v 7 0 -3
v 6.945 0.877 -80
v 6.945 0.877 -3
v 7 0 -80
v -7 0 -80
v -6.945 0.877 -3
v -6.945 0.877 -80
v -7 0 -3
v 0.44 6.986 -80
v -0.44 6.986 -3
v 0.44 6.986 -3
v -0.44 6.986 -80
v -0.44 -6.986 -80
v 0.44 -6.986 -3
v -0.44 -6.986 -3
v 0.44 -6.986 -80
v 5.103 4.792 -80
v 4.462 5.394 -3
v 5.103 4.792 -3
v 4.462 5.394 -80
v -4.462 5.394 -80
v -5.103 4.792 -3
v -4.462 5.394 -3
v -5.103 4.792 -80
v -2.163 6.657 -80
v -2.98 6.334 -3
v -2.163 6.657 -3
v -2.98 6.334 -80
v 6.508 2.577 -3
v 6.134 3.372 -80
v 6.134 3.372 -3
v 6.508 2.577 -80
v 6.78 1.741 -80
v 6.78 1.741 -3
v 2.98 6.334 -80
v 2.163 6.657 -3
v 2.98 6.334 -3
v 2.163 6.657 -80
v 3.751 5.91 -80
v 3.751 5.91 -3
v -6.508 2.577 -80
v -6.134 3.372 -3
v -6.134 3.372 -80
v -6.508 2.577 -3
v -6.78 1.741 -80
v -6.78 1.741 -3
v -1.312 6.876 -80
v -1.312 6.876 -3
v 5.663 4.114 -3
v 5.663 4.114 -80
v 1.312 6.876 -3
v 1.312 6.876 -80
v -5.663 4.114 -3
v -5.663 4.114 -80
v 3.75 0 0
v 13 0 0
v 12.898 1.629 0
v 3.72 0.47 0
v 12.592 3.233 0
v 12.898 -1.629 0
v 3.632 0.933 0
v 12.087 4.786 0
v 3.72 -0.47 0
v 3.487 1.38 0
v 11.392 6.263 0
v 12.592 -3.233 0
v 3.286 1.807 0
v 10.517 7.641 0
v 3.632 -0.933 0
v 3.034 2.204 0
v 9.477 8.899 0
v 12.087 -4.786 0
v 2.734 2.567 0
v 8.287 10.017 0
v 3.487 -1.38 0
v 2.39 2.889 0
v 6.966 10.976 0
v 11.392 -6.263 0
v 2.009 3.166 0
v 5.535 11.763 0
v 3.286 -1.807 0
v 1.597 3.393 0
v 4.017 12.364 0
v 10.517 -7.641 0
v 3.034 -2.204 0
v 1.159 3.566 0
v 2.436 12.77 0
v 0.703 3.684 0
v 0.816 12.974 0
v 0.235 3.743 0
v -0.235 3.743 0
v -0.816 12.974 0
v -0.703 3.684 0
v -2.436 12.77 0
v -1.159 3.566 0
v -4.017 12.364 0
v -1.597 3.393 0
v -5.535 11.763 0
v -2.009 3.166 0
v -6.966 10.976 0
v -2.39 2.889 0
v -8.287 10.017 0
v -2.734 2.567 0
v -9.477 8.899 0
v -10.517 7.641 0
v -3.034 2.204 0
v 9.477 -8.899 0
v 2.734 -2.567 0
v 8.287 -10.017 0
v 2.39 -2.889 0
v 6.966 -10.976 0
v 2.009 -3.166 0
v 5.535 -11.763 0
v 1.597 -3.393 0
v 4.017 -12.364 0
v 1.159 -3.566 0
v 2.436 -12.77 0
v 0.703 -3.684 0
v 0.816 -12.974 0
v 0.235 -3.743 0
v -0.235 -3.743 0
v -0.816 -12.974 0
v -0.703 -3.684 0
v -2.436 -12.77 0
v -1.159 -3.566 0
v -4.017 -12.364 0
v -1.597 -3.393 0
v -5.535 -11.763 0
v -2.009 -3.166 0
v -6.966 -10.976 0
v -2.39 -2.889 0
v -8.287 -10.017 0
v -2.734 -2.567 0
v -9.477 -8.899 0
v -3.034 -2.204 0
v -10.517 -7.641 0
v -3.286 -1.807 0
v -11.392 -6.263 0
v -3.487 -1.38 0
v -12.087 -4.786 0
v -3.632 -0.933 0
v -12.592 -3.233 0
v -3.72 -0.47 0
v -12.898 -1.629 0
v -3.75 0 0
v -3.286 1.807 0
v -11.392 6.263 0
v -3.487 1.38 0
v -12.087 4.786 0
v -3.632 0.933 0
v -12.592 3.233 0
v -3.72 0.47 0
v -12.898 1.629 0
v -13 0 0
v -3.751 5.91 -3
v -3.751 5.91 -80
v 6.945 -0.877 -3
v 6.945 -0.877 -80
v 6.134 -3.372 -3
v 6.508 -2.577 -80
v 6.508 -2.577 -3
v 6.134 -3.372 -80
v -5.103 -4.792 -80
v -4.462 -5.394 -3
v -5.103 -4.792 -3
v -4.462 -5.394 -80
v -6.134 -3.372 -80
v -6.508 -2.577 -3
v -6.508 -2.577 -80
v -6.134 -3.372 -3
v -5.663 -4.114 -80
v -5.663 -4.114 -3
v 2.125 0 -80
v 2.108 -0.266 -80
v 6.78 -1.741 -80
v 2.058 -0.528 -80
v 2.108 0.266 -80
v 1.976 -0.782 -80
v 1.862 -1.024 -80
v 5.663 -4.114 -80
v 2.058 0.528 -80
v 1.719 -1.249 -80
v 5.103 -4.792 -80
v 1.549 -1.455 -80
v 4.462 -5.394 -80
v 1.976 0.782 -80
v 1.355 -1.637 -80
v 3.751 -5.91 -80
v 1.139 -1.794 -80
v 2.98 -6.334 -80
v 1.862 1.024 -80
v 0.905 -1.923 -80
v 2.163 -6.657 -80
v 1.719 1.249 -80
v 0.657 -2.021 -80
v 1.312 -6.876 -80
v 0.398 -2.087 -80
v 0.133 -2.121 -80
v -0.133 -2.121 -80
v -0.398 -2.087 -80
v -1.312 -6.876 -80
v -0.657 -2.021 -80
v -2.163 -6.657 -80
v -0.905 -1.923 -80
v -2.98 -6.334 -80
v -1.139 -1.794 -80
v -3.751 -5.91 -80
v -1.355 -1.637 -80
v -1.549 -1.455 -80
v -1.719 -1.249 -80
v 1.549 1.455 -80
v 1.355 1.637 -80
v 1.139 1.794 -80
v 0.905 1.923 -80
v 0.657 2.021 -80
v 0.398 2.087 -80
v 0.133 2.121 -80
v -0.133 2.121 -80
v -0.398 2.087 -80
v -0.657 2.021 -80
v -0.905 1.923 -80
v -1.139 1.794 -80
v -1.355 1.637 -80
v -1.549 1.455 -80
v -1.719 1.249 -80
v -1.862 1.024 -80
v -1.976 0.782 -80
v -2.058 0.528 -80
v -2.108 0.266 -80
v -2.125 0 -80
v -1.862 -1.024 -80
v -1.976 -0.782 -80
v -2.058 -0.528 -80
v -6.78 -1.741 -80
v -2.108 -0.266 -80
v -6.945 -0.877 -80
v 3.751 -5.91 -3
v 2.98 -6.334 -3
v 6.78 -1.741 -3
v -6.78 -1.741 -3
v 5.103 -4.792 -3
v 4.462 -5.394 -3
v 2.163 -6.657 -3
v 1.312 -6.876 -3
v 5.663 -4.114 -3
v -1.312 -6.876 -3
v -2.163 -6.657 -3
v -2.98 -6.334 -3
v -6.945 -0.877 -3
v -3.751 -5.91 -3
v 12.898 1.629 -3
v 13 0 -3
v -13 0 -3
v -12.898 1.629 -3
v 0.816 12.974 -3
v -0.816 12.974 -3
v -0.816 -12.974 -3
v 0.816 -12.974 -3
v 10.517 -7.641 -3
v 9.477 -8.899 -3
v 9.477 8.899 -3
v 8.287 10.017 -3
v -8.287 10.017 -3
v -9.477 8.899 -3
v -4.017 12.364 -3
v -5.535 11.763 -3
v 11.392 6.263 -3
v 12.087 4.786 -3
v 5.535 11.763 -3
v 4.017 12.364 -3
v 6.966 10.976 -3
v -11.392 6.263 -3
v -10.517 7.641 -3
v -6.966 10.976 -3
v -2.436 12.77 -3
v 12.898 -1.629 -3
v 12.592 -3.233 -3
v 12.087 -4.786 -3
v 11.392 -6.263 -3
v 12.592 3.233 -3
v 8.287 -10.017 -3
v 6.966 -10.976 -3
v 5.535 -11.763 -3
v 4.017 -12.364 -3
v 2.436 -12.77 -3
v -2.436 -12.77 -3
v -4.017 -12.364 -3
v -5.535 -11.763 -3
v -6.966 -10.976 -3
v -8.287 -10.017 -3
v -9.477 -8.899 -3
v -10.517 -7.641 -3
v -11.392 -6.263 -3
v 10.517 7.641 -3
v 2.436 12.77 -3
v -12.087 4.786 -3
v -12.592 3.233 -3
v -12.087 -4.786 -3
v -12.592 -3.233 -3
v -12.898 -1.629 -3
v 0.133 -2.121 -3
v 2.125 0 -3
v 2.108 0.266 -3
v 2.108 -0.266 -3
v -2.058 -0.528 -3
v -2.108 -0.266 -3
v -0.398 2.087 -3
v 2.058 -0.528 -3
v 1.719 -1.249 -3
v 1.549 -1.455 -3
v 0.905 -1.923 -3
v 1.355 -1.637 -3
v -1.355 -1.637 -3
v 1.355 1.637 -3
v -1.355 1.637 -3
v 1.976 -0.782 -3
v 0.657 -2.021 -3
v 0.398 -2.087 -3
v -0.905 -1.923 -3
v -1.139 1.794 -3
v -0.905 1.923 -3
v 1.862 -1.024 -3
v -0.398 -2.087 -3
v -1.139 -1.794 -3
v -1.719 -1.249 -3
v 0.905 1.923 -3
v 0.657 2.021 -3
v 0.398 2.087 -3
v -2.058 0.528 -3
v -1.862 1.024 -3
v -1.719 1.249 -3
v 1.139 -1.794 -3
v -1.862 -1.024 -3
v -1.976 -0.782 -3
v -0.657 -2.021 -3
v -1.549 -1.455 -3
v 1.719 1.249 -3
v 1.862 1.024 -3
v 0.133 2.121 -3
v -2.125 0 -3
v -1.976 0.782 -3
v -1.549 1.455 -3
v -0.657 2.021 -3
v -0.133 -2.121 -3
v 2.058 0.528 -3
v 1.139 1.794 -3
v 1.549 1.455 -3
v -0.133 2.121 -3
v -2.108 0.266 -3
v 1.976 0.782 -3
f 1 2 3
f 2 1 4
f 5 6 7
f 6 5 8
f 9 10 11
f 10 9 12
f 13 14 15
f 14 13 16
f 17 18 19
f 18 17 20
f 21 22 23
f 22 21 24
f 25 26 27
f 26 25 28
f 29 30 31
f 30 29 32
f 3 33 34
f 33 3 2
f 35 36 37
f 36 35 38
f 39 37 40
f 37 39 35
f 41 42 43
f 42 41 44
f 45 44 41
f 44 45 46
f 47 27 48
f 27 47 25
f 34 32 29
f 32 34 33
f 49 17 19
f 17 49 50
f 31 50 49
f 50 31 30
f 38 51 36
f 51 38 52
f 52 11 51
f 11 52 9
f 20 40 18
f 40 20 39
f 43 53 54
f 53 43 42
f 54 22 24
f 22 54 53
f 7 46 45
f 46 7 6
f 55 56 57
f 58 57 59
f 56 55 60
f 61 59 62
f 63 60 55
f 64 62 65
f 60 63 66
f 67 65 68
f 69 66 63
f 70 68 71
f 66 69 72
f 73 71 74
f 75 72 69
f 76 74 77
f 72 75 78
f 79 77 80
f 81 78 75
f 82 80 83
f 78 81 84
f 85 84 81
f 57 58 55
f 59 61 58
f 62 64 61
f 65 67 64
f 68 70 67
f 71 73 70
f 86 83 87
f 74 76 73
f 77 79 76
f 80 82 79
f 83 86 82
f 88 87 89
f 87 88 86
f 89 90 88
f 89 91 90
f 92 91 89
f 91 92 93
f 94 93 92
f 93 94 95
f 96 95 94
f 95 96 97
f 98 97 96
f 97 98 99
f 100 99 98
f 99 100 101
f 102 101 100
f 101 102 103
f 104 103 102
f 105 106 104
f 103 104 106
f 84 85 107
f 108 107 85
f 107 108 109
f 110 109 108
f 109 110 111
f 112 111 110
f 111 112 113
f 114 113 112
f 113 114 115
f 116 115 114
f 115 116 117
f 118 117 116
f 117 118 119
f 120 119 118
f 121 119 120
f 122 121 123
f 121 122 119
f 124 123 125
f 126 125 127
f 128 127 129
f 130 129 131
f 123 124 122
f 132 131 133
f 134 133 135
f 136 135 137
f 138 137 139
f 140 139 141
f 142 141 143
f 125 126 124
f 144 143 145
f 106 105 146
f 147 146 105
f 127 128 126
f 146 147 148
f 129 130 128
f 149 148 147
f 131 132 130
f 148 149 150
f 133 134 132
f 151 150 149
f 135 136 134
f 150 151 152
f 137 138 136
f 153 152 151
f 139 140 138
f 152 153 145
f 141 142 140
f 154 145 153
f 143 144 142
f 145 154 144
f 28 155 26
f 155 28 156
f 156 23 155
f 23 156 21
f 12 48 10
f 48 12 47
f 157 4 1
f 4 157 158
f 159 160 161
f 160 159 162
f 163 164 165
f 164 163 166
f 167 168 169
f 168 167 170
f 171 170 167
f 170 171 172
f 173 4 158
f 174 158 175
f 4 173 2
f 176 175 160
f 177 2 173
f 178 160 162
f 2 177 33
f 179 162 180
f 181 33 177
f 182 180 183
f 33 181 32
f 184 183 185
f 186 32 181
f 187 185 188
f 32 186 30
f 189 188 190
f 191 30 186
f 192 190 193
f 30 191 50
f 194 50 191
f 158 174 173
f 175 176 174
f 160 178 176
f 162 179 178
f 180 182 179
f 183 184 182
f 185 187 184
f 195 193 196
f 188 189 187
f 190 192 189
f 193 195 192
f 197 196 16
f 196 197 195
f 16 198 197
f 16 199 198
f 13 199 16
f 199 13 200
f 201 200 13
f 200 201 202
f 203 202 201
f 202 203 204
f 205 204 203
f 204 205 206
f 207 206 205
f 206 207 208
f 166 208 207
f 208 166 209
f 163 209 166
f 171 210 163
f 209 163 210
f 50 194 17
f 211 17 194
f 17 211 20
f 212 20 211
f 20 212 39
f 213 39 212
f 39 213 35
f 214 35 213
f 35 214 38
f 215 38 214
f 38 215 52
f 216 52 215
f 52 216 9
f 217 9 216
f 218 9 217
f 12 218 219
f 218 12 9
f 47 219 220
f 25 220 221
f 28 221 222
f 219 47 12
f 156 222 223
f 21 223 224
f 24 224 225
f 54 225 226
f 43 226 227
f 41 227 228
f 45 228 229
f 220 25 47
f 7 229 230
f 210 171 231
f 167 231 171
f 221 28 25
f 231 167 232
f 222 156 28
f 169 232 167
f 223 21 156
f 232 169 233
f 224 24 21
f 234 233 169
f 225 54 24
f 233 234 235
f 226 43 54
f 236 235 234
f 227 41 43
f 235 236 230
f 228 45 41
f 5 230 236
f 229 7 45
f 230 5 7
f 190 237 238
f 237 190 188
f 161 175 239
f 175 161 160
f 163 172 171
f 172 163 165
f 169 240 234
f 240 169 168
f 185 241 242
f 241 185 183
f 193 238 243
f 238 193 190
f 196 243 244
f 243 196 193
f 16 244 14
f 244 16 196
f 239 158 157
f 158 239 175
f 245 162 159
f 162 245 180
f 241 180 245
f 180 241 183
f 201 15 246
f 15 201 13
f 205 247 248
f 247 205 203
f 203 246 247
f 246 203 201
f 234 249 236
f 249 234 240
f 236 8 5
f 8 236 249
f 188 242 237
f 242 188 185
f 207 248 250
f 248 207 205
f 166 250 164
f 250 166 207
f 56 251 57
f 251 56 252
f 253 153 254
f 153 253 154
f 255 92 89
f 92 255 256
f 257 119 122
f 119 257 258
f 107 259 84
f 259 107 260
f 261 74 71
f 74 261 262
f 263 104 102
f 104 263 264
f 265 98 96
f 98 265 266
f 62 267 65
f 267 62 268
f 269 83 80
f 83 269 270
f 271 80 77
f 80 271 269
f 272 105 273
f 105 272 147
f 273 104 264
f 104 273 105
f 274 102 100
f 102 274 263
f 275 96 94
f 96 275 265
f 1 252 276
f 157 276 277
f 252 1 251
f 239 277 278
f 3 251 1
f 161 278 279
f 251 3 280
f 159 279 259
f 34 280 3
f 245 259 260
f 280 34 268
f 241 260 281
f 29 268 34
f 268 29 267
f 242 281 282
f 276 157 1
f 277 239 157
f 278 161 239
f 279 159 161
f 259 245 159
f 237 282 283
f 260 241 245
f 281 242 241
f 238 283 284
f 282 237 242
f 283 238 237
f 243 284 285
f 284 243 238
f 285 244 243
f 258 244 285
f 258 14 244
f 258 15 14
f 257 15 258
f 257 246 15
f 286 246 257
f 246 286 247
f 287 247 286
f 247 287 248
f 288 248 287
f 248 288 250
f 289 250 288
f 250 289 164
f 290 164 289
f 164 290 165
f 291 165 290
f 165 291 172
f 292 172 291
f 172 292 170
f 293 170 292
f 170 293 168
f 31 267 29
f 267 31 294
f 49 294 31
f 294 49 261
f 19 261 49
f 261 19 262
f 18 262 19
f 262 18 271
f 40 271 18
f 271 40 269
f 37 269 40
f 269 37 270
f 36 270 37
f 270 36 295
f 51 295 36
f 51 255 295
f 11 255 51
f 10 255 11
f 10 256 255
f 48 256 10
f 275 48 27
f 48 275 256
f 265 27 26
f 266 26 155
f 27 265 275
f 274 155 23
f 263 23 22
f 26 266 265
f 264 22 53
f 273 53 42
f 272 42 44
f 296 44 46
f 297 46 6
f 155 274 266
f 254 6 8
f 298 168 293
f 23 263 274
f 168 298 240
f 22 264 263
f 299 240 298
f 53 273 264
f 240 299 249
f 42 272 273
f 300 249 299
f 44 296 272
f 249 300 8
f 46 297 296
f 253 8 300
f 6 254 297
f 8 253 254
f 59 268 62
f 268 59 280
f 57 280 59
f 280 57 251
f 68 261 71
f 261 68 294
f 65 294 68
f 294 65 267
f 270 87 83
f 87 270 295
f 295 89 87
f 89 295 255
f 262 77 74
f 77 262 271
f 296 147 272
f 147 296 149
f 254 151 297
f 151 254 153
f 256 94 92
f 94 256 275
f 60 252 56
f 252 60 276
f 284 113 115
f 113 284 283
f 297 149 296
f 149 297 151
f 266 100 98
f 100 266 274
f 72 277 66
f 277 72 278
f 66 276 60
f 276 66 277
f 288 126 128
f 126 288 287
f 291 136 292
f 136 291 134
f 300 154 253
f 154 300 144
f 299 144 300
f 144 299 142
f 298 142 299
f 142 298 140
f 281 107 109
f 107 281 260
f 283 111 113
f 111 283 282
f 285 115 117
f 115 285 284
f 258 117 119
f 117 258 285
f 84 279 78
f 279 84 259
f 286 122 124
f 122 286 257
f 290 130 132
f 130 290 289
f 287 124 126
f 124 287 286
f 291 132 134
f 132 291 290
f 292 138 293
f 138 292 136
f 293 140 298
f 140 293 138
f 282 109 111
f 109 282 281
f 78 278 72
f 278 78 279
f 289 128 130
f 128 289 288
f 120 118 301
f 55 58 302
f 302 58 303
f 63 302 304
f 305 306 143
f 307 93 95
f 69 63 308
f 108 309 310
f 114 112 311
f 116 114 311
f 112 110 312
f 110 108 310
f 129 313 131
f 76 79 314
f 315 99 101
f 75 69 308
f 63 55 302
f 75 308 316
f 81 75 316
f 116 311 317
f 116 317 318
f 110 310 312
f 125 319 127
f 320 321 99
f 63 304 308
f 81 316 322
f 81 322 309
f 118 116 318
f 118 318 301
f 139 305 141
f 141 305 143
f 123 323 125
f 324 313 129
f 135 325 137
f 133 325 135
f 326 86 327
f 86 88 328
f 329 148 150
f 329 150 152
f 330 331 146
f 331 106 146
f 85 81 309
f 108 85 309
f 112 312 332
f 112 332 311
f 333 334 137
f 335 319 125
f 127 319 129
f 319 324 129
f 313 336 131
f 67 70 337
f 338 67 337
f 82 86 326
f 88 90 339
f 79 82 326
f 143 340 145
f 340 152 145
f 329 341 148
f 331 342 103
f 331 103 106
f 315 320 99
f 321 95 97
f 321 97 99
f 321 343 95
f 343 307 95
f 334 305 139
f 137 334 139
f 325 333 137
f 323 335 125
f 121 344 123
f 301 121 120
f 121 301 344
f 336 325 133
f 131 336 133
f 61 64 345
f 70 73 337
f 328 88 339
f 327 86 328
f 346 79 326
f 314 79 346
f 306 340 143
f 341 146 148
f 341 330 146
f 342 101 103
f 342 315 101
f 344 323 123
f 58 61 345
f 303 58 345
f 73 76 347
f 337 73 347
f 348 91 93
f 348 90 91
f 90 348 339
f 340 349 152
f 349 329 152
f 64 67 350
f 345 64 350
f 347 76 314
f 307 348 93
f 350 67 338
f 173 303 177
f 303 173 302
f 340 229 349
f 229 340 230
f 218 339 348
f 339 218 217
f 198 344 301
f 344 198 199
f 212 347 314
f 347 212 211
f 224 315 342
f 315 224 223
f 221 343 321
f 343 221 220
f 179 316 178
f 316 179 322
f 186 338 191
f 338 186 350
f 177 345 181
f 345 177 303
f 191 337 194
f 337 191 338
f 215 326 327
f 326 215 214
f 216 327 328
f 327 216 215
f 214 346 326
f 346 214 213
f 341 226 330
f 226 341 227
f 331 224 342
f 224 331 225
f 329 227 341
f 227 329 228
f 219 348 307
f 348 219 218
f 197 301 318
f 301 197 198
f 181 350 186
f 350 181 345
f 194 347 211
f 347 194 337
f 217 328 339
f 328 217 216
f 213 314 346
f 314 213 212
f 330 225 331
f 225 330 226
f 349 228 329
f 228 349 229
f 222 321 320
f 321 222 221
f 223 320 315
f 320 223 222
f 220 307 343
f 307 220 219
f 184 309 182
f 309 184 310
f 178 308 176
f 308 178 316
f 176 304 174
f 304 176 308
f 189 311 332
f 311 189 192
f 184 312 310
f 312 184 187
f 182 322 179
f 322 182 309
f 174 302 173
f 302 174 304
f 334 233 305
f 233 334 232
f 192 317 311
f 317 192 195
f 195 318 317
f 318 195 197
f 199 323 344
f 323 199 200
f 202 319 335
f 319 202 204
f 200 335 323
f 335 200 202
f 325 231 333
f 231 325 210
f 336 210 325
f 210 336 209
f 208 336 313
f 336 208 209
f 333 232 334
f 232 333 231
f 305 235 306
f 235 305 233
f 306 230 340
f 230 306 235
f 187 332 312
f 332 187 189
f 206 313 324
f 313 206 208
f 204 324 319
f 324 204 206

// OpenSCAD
$fn = 50;


difference() {
	union() {
		translate(v = [0, 0, -80.0000000000]) {
			cylinder(h = 80, r = 7.0000000000);
		}
		translate(v = [0, 0, -3.0000000000]) {
			cylinder(h = 3, r = 13.0000000000);
		}
	}
	union() {
		translate(v = [0, 0, 0]) {
			rotate(a = [0, 0, 0]) {
				difference() {
					union() {
						#translate(v = [0, 0, -80.0000000000]) {
							cylinder(h = 80, r = 2.0000000000);
						}
						#translate(v = [0, 0, -3]) {
							cylinder(h = 3, r1 = 2.1250000000, r2 = 3.7500000000);
						}
						#translate(v = [0, 0, -80.0000000000]) {
							cylinder(h = 80, r = 2.1250000000);
						}
						#translate(v = [0, 0, -80.0000000000]) {
							cylinder(h = 80, r = 2.0000000000);
						}
					}
					union();
				}
			}
		}
	}
}
